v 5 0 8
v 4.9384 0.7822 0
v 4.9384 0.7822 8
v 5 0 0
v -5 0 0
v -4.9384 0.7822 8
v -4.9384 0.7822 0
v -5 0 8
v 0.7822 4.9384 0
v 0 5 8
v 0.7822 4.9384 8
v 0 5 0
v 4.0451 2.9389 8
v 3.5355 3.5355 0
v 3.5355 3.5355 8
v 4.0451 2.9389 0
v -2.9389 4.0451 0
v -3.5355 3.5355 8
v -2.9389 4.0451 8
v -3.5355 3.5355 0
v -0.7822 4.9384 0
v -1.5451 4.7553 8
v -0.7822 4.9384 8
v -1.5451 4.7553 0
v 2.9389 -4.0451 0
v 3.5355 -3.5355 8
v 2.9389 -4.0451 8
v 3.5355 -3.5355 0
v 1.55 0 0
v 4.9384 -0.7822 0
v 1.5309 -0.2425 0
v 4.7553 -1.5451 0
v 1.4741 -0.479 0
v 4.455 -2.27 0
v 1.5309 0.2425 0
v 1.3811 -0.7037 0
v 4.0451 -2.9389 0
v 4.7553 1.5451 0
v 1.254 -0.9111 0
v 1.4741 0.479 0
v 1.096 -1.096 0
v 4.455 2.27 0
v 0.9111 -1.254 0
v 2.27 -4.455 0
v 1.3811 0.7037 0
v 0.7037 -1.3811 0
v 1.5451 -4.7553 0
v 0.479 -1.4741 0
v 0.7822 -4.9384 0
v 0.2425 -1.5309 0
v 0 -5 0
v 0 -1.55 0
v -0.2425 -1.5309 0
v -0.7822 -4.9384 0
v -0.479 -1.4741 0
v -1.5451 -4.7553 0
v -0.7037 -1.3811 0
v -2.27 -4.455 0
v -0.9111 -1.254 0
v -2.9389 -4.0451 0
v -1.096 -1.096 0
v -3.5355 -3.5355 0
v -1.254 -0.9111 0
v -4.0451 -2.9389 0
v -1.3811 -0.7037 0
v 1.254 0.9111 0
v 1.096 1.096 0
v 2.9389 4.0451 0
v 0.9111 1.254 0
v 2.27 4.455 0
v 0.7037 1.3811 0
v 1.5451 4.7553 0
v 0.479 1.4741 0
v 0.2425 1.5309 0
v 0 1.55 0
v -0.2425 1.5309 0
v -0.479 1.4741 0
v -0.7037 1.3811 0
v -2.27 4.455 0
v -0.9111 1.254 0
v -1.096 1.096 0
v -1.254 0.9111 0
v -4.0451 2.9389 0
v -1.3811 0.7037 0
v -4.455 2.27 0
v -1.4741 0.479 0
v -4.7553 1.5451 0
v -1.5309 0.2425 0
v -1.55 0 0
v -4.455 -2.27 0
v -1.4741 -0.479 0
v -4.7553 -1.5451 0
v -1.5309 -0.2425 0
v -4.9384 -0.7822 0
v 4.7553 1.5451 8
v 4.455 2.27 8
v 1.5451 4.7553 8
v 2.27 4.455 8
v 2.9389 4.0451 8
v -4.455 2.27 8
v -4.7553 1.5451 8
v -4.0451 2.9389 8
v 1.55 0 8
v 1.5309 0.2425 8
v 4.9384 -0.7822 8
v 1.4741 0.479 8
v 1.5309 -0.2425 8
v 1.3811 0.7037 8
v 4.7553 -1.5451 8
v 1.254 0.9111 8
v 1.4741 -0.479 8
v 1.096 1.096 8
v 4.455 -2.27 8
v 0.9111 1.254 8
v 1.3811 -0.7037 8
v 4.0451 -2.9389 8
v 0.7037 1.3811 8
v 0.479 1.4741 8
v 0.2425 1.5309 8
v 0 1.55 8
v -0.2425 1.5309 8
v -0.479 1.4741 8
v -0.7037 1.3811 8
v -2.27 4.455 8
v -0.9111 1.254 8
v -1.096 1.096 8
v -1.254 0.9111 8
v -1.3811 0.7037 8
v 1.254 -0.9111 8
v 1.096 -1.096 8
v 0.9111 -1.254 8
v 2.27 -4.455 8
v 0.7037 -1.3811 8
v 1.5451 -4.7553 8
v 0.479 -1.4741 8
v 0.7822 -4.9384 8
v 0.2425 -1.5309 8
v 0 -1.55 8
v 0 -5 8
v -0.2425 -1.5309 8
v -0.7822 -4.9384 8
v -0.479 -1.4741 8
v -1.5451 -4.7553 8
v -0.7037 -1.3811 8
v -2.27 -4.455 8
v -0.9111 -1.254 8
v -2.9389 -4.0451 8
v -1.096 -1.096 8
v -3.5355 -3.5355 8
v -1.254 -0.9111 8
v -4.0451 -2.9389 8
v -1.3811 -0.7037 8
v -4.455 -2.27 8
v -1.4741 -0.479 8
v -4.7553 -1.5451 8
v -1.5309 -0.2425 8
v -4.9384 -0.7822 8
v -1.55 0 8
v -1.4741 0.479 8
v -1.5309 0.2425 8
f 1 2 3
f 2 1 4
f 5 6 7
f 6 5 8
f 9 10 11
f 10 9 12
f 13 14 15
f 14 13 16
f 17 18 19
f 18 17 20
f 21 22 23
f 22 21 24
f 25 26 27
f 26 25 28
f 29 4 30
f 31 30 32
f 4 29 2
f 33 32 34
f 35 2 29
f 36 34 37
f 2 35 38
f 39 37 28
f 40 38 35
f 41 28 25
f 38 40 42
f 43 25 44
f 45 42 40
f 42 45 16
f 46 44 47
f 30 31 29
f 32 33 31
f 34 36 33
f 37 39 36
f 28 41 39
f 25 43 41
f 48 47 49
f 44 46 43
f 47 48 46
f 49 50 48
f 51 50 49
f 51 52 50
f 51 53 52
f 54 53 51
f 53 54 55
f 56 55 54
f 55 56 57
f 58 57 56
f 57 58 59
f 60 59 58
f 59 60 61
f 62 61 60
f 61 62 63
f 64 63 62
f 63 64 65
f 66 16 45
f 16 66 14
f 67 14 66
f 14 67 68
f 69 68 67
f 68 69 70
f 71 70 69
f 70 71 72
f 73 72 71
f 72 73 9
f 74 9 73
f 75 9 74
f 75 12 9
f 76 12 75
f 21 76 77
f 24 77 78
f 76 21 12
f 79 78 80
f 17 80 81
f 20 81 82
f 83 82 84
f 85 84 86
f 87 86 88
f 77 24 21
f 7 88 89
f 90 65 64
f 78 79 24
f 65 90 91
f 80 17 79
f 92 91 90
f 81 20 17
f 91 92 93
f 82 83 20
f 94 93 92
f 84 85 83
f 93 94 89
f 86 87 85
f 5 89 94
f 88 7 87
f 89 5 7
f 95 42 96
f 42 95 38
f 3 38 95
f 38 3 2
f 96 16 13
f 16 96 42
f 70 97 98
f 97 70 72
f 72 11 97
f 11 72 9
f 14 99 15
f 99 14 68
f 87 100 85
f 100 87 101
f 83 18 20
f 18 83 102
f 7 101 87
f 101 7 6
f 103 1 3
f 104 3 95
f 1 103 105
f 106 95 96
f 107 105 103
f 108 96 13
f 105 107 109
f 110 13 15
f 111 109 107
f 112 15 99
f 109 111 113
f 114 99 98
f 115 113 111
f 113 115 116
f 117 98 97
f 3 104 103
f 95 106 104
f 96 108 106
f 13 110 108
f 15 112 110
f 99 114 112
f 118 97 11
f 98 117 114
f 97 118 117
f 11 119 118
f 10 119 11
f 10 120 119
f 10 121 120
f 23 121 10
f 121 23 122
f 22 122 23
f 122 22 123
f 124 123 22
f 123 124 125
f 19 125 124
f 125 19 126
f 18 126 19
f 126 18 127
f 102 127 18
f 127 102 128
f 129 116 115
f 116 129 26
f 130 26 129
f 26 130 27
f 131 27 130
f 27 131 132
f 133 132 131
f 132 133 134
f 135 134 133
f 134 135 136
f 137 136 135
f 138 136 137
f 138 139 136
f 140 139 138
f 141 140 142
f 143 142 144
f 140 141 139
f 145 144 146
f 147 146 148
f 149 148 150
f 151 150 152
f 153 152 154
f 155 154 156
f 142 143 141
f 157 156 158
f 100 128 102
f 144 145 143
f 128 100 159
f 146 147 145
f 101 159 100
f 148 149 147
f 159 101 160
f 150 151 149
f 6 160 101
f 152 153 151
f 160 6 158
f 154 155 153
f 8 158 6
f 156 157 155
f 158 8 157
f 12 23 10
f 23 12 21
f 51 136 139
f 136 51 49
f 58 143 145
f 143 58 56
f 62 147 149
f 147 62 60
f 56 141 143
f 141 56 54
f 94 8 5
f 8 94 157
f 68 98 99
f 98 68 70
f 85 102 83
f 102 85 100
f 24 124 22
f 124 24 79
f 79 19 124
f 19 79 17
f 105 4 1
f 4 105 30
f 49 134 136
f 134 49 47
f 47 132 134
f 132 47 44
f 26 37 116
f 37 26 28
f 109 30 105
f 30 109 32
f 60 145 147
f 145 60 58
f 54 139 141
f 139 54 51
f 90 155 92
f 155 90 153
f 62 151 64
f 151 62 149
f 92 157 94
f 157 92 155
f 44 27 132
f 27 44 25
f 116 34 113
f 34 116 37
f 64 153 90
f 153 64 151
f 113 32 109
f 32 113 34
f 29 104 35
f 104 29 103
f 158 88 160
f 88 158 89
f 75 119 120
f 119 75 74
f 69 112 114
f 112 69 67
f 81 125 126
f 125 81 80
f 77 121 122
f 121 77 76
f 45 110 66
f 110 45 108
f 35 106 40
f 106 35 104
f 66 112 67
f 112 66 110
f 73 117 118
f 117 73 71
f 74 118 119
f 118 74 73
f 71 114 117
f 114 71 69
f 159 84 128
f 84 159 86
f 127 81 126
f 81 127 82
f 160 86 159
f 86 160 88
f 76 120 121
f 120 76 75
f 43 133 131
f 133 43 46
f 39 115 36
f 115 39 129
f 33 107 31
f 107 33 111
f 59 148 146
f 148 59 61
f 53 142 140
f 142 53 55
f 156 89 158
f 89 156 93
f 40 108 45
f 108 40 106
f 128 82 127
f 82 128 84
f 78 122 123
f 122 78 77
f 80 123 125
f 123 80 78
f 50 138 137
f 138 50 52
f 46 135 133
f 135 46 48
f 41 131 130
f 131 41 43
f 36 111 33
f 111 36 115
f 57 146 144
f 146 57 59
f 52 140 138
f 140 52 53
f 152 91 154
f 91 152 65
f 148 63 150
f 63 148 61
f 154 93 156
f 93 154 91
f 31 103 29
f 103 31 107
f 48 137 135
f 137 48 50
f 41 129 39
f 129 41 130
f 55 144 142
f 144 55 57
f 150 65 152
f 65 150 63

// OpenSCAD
smooth = 40;

difference()
{

color("green")
cylinder(8,d=10,$fn=smooth);

color("red")
translate([0,0,-1])
cylinder(10,d=3.1,$fn=smooth);

}
